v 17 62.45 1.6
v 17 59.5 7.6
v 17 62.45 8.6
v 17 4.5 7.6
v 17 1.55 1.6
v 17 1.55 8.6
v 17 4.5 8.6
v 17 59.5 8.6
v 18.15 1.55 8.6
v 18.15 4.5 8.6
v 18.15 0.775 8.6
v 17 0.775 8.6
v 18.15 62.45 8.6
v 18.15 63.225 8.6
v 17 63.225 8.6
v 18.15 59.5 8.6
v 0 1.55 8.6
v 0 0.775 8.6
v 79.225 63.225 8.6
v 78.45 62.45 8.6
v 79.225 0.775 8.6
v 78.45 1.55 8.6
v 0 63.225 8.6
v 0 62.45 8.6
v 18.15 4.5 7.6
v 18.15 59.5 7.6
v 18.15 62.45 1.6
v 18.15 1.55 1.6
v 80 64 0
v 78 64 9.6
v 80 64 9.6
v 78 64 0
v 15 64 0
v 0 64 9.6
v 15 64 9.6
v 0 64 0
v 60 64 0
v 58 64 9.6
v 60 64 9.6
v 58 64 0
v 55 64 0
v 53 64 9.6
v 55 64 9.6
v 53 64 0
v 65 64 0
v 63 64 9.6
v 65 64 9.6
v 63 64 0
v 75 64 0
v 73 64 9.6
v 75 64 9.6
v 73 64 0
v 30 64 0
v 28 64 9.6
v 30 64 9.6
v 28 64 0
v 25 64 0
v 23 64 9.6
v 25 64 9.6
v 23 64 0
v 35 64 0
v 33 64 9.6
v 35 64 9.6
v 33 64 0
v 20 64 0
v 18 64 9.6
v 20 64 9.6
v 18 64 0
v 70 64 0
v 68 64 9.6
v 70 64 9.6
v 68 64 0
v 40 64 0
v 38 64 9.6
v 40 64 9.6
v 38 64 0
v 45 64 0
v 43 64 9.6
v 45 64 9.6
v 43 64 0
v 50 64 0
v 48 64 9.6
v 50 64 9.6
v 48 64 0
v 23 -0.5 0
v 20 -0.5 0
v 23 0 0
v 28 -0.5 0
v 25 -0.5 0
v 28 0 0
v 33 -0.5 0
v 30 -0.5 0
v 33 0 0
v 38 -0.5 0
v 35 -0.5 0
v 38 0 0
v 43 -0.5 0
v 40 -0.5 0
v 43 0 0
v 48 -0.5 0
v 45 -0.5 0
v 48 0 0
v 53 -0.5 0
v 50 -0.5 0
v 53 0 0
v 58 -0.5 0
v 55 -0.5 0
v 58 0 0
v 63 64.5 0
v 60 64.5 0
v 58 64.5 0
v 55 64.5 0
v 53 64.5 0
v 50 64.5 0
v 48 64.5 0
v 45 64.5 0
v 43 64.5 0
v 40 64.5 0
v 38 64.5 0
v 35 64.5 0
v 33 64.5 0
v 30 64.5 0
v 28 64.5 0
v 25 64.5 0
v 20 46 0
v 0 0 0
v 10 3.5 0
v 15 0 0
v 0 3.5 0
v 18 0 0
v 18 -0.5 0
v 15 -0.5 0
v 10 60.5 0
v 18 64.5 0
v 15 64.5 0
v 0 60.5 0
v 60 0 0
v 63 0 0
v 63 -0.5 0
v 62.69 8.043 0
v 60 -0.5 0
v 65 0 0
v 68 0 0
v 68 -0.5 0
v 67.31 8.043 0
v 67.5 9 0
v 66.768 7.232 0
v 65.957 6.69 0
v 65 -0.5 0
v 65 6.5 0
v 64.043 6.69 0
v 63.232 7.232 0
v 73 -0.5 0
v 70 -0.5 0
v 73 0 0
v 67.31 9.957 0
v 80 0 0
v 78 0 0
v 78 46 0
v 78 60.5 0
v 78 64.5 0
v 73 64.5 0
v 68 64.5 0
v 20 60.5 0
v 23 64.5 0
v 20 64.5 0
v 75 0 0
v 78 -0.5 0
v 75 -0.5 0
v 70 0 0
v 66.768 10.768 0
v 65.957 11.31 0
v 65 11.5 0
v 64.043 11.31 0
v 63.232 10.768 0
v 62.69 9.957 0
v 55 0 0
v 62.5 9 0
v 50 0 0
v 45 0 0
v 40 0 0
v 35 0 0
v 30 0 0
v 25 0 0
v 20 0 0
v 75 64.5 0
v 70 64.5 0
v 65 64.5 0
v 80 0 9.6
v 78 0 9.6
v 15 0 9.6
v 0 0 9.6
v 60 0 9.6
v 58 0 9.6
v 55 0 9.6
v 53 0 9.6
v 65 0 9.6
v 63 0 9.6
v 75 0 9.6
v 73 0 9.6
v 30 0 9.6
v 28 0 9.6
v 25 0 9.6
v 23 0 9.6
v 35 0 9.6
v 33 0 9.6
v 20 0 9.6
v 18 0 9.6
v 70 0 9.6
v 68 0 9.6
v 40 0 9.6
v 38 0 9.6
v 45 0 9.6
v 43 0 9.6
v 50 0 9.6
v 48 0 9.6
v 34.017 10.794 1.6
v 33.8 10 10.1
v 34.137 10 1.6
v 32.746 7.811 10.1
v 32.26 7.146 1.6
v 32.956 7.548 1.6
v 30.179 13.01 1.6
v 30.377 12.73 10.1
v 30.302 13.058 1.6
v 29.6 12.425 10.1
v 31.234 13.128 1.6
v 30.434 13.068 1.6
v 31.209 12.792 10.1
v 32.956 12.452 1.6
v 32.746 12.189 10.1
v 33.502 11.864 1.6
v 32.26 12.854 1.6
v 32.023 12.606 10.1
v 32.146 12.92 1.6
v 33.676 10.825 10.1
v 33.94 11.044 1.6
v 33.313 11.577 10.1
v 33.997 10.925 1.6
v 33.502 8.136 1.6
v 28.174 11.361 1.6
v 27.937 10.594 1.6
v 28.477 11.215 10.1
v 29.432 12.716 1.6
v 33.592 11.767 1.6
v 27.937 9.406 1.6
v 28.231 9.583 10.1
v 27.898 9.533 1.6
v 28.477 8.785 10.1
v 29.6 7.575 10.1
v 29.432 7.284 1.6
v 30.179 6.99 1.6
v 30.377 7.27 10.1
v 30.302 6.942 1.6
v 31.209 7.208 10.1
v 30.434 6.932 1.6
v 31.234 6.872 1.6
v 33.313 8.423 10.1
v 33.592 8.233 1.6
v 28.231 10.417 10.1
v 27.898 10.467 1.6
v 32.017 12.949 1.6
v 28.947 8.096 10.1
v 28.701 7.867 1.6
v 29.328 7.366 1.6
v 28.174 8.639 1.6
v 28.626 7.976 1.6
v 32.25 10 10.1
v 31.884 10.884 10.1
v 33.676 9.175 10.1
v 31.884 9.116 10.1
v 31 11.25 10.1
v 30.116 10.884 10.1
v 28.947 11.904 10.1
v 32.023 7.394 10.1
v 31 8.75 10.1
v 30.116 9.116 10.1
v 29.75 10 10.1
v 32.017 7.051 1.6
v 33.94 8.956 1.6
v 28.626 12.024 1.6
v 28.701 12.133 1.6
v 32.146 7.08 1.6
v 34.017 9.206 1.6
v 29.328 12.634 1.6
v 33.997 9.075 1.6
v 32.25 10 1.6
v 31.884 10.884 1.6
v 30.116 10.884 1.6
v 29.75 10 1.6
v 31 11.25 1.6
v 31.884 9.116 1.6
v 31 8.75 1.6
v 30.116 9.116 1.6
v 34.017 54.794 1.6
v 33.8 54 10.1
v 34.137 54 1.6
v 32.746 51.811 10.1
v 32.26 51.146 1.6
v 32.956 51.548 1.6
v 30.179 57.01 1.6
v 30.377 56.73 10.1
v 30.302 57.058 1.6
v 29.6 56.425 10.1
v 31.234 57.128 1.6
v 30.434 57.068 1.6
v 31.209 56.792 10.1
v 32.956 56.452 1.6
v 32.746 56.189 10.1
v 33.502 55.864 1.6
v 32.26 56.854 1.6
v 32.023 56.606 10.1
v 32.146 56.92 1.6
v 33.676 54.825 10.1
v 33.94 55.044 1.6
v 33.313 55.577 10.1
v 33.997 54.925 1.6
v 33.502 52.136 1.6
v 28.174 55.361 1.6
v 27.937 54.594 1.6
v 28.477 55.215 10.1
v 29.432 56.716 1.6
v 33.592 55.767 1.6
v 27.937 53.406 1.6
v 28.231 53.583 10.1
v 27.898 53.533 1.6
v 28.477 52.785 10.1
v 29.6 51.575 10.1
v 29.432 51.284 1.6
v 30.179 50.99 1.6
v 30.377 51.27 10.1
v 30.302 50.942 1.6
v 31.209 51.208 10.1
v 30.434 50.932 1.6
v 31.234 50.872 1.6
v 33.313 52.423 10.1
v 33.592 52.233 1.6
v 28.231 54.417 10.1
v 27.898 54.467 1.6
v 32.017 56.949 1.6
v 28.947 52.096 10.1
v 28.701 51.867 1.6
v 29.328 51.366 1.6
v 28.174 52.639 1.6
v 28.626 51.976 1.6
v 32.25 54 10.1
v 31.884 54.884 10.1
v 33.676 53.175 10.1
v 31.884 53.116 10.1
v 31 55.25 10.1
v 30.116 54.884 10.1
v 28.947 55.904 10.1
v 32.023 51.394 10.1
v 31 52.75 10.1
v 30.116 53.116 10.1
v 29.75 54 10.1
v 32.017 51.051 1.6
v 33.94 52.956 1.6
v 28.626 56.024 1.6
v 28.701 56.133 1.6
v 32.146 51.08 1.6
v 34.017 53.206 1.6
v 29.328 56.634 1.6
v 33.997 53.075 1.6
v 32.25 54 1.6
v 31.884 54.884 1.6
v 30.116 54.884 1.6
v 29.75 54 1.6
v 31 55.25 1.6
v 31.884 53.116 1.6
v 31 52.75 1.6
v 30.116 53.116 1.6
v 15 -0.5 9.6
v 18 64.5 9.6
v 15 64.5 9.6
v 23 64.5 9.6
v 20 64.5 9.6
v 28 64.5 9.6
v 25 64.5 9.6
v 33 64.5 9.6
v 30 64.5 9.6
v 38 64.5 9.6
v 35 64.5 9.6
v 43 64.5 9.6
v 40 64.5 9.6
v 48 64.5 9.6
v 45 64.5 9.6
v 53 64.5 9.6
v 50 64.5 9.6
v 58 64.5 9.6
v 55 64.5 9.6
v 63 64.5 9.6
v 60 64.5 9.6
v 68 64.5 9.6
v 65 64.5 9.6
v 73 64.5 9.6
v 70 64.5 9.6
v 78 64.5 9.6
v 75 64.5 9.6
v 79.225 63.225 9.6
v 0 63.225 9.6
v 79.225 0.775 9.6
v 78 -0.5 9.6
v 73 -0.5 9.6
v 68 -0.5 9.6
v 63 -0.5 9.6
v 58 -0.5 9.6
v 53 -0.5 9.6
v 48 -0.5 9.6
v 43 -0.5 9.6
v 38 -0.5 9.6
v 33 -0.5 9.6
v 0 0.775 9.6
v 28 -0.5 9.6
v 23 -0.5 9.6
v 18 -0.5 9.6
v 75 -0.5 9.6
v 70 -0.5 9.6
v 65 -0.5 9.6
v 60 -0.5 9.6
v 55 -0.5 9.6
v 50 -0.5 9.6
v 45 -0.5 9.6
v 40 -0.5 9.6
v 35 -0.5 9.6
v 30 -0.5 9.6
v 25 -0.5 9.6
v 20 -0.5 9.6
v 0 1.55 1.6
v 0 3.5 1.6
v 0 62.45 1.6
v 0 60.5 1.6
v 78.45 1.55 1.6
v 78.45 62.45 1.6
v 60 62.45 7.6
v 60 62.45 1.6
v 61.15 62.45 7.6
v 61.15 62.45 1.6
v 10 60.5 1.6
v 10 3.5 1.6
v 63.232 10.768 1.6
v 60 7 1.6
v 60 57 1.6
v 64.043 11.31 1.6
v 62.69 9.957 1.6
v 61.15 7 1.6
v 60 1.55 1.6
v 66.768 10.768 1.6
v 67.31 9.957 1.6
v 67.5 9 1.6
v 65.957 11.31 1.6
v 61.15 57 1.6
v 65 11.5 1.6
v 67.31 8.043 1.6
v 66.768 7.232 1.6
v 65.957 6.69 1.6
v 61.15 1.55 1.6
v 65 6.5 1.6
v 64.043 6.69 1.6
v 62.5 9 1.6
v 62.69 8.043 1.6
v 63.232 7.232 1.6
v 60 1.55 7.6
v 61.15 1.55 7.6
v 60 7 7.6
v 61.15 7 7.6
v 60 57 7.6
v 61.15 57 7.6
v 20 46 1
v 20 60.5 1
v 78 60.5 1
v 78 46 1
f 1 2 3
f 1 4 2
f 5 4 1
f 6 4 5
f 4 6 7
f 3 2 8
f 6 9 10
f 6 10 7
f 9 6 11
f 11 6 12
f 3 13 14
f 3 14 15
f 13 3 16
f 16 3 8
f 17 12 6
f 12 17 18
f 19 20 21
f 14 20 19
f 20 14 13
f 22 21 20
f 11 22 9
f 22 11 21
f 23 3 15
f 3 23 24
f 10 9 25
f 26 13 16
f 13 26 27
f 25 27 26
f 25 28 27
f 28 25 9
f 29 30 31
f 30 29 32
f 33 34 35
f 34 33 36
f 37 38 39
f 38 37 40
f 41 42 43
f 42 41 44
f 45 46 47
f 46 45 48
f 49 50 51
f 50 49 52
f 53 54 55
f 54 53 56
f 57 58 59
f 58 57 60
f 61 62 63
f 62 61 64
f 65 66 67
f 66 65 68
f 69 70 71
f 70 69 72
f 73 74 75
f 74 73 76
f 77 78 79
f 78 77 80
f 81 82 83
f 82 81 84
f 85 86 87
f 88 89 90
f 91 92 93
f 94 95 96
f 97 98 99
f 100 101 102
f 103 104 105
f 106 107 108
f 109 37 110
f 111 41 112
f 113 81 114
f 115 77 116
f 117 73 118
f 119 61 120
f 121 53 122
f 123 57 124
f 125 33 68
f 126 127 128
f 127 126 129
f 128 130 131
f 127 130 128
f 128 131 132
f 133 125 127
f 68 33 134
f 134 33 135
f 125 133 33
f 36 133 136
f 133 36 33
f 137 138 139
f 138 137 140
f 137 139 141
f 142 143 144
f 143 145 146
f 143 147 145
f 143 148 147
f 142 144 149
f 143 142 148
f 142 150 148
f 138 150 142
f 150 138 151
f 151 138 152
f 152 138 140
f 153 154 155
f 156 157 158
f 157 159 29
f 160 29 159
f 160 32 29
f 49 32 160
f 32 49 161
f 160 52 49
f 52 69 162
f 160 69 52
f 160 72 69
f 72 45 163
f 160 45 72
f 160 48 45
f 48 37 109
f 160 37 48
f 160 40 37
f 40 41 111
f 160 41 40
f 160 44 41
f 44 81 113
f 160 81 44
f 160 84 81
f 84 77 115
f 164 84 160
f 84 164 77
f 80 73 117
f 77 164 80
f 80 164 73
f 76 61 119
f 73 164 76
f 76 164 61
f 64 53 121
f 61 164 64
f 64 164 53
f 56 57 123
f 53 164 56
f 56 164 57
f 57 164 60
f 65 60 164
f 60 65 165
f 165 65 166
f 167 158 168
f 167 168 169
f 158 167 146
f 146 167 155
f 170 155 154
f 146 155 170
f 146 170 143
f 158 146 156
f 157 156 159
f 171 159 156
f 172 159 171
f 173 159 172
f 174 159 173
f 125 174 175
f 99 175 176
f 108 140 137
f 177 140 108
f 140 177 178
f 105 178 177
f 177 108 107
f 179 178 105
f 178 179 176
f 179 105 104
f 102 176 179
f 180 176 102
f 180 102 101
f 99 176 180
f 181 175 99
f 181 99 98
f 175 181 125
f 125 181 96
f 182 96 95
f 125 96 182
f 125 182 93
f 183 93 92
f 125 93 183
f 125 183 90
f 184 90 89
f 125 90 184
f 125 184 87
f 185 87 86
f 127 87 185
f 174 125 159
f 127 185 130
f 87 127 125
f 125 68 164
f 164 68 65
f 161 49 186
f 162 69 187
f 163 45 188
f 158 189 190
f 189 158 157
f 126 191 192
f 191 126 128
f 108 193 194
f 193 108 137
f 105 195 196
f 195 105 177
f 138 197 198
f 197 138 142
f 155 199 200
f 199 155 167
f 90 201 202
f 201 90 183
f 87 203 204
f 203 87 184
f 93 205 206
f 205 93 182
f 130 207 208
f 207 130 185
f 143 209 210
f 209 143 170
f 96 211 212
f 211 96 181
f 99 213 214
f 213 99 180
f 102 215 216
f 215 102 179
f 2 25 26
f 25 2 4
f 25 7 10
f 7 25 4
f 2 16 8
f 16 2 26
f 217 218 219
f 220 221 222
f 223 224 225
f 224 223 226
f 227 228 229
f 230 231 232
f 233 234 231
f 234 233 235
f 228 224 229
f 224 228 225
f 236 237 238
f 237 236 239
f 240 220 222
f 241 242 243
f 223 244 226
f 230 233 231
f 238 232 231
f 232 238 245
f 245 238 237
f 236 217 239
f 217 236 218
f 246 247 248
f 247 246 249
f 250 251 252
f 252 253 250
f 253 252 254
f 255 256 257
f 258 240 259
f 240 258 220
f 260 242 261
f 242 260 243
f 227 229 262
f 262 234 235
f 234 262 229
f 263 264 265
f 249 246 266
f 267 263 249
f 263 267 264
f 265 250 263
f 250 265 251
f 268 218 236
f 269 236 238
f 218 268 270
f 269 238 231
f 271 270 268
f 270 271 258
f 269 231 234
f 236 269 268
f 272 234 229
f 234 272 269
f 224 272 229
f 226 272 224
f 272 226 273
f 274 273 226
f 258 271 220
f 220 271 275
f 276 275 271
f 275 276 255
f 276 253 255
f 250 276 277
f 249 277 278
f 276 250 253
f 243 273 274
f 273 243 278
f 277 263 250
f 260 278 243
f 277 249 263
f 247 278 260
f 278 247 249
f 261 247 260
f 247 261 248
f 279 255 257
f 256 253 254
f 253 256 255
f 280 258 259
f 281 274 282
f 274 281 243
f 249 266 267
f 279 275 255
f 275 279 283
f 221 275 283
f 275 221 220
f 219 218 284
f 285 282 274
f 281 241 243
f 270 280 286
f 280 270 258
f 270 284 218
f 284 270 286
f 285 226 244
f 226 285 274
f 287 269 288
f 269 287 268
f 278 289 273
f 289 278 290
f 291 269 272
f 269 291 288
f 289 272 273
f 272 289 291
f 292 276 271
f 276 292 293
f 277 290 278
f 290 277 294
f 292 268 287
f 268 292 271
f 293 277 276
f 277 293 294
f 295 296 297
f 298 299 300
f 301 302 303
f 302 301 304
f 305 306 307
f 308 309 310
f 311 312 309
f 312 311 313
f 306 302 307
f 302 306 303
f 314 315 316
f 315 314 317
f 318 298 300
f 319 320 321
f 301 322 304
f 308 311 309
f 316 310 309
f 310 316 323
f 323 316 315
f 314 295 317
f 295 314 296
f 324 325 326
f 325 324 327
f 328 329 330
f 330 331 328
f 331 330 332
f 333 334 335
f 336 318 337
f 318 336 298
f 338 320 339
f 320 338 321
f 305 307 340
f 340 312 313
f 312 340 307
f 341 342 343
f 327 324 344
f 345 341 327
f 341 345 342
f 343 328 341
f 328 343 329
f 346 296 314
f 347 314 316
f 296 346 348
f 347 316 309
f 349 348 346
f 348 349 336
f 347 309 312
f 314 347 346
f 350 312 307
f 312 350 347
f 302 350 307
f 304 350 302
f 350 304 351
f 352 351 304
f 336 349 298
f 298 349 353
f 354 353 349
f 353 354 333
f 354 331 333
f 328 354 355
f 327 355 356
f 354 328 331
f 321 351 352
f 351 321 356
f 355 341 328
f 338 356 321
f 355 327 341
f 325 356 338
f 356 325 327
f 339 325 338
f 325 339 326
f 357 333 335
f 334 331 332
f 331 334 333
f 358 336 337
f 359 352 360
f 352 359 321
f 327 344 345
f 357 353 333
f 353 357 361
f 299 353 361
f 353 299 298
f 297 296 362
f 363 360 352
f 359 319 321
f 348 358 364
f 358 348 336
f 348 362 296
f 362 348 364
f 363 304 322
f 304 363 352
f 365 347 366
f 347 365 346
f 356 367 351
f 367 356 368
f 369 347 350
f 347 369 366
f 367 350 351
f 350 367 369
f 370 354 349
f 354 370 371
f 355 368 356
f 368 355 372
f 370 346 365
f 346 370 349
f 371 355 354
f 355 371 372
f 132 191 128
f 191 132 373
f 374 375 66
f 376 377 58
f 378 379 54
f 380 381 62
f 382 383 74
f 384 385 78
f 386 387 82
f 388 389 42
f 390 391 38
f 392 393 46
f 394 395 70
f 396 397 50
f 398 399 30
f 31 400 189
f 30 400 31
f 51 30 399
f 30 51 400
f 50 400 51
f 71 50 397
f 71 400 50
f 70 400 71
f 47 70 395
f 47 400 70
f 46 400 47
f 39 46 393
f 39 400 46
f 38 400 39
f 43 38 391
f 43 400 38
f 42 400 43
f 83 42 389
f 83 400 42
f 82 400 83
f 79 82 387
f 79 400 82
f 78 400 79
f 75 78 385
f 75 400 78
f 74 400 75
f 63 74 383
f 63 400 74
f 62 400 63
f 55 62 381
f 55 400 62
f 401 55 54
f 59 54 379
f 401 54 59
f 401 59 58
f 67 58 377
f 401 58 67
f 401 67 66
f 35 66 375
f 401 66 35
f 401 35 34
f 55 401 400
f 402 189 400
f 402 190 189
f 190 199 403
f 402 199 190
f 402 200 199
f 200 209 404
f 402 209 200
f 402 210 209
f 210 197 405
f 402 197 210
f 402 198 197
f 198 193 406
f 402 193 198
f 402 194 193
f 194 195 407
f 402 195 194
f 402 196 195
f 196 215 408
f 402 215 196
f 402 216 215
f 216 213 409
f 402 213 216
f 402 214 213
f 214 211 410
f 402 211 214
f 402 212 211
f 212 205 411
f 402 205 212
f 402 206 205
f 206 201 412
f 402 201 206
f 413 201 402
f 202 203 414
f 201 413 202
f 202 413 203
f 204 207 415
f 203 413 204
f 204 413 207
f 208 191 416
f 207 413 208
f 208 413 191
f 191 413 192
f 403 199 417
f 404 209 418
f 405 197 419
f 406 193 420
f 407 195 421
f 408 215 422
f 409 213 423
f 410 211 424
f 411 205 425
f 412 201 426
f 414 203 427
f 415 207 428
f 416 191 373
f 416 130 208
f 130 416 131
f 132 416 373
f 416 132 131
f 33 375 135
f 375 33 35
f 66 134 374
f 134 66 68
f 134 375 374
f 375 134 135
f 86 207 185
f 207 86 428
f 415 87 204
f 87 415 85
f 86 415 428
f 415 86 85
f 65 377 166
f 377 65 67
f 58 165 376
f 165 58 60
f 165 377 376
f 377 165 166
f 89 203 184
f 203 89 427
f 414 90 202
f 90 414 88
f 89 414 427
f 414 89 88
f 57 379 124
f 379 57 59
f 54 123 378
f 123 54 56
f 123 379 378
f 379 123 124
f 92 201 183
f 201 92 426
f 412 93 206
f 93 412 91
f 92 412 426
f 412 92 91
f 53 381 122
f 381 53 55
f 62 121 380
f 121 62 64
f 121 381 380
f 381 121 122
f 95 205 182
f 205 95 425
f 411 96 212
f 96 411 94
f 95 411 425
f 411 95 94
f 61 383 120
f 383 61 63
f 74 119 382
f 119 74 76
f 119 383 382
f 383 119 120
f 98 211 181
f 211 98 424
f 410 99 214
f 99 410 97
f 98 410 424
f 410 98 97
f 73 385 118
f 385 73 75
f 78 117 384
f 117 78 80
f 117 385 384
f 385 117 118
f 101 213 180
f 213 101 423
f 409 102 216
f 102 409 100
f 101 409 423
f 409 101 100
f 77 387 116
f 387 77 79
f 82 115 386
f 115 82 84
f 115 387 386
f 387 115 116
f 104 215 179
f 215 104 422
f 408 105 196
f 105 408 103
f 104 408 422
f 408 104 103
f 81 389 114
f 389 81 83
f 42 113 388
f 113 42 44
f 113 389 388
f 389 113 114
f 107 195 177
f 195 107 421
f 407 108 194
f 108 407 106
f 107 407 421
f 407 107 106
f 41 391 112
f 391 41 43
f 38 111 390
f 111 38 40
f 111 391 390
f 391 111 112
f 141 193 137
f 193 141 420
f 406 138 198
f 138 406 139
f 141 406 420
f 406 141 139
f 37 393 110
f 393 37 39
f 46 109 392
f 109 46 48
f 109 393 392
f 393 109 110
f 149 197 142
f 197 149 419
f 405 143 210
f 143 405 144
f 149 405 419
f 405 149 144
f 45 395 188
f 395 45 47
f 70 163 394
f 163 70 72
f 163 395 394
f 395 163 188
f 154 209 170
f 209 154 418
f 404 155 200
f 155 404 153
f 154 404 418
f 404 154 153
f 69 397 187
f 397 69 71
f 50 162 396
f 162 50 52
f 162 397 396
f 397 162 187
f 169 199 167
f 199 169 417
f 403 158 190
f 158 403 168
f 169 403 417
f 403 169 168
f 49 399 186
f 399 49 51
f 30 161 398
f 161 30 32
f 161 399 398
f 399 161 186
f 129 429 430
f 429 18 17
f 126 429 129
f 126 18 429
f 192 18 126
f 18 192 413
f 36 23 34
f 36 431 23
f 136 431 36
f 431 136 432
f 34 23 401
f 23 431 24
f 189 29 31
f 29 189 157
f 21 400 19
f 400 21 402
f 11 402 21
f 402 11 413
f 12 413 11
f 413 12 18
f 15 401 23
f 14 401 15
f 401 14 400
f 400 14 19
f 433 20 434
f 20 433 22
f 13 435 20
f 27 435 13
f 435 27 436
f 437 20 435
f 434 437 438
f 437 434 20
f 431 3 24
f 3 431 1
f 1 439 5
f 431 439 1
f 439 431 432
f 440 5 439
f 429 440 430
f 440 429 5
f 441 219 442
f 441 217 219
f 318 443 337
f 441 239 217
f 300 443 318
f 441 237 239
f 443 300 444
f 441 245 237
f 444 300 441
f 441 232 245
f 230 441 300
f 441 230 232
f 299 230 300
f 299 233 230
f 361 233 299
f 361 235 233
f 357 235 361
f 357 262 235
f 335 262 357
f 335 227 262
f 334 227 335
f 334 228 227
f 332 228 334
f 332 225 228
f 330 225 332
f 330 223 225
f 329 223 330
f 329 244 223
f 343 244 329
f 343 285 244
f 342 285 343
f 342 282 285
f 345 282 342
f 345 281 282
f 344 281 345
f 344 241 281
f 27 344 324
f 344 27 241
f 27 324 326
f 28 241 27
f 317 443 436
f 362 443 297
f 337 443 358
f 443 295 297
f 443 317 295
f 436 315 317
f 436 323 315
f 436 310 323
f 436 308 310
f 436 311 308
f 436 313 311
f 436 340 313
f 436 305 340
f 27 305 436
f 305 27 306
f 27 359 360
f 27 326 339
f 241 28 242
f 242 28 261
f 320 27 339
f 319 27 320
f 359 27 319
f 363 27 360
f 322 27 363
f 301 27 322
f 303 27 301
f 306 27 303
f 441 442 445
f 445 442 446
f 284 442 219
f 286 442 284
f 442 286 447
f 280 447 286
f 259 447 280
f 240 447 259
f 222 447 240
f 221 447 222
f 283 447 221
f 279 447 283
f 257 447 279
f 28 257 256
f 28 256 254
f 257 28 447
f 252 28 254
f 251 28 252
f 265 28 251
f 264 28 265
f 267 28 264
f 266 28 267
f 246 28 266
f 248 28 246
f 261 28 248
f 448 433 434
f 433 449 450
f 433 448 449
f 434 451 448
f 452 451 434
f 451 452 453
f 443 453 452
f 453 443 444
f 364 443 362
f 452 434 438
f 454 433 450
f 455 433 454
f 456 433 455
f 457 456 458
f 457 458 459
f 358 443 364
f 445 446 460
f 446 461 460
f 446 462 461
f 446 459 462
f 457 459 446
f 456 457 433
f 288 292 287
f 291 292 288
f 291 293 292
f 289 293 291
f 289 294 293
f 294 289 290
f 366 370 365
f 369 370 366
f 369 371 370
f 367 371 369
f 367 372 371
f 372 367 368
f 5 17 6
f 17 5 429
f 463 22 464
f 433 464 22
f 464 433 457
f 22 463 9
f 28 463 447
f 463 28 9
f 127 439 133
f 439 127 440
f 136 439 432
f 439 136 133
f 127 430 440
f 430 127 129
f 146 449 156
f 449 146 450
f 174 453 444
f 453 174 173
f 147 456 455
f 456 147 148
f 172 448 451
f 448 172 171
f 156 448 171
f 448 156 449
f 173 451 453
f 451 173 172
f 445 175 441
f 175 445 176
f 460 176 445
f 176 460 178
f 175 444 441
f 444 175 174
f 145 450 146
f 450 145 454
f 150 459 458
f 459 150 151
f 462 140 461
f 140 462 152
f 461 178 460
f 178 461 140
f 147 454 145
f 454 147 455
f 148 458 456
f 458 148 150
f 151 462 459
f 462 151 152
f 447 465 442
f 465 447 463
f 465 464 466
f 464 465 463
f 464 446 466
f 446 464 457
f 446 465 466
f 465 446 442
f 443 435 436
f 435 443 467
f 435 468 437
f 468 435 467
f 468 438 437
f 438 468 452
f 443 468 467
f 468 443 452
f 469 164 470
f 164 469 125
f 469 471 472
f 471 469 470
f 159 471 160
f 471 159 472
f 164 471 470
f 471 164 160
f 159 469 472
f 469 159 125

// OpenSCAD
// file: a8pico_dimensions.scad
/* A8PicoCart shell
   (c) R.Edwards 2023
*/

/*common ones */

ridge_width = 0.5;
cart_length=80;
cart_width=65 - (ridge_width*2);
screw_sep = 44;
front_thickness = 1.6;
sides_thickness = 1.6 - 0.05;
support_thickness = 1.2 - 0.05;
rim_height=1;

/* back */
/* height of the back side part */
cartb_height=11.5;

supportb_height = 10.5;

/* front */

/*height of the front side part */
cartf_height=9.6;
supportf_height = 7.6;
logo_width = 14.5;
logo_height = 58;
// main file
/* A8PicoCart shell
   (c) R.Edwards 2023
*/

include <a8pico_dimensions.scad>


module front () {

difference() {
    union() {
        difference() {
            // main shell
            cube([cart_length, cart_width, cartf_height]);
            // rims
            translate([0, sides_thickness/2, cartf_height-rim_height])
                cube([cart_length-sides_thickness/2,
                    cart_width-sides_thickness, rim_height]);
            // make hollow
            translate([0, sides_thickness, front_thickness])
                cube([cart_length-sides_thickness,
                    cart_width-sides_thickness*2,
                    cartf_height-front_thickness]);
            // cutout cart port
            translate([0, (cart_width-57)/2, 0])
                cube([10, 57, cartf_height]);
            // button
            translate([cart_length-15, 9, 0])
               cylinder(h = front_thickness, r1 = 2.5, r2 = 2.5,  $fs = 1); 
        }    
        // pcb supports
        difference() {
            translate([17, 0, 0])
                cube([support_thickness, cart_width, cartf_height-rim_height]);
            translate([17, (cart_width-55)/2, supportf_height])
                cube([support_thickness, 55, cartf_height-supportf_height]);
        }
        translate([60, 0, 0])
            cube([support_thickness, 7, supportf_height]);
        translate([60, cart_width-7, 0])
            cube([support_thickness, 7, supportf_height]);
        // screw holes
        translate([31, (cart_width-screw_sep)/2, 0])
            difference() {
                cylinder(h = supportf_height + 2.5, r1 = 3.2, r2 = 2.8,  $fs = 1);
                cylinder(h = supportf_height + 2.5, r1 = 1.25, r2 = 1.25,  $fs = 1);
            }
        translate([31, cart_width-(cart_width-screw_sep)/2, 0])
            difference() {
                cylinder(h = supportf_height + 2.5, r1 = 3.2, r2 = 2.8,  $fs = 1);
                cylinder(h = supportf_height + 2.5, r1 = 1.25, r2 = 1.25,  $fs = 1);
            }
        // ridges
        for (i = [15: 5: cart_length-5])
            union() {
                translate([i, -ridge_width, 0])
                    cube([3, ridge_width, cartf_height]);
                translate([i, cart_width, 0])
                    cube([3, ridge_width, cartf_height]);
            }
    }
    // logo space
    translate([cart_length-logo_height-2, cart_width-logo_width-3.5, 0])
        cube([logo_height, logo_width, 1]);
}

}

front();
